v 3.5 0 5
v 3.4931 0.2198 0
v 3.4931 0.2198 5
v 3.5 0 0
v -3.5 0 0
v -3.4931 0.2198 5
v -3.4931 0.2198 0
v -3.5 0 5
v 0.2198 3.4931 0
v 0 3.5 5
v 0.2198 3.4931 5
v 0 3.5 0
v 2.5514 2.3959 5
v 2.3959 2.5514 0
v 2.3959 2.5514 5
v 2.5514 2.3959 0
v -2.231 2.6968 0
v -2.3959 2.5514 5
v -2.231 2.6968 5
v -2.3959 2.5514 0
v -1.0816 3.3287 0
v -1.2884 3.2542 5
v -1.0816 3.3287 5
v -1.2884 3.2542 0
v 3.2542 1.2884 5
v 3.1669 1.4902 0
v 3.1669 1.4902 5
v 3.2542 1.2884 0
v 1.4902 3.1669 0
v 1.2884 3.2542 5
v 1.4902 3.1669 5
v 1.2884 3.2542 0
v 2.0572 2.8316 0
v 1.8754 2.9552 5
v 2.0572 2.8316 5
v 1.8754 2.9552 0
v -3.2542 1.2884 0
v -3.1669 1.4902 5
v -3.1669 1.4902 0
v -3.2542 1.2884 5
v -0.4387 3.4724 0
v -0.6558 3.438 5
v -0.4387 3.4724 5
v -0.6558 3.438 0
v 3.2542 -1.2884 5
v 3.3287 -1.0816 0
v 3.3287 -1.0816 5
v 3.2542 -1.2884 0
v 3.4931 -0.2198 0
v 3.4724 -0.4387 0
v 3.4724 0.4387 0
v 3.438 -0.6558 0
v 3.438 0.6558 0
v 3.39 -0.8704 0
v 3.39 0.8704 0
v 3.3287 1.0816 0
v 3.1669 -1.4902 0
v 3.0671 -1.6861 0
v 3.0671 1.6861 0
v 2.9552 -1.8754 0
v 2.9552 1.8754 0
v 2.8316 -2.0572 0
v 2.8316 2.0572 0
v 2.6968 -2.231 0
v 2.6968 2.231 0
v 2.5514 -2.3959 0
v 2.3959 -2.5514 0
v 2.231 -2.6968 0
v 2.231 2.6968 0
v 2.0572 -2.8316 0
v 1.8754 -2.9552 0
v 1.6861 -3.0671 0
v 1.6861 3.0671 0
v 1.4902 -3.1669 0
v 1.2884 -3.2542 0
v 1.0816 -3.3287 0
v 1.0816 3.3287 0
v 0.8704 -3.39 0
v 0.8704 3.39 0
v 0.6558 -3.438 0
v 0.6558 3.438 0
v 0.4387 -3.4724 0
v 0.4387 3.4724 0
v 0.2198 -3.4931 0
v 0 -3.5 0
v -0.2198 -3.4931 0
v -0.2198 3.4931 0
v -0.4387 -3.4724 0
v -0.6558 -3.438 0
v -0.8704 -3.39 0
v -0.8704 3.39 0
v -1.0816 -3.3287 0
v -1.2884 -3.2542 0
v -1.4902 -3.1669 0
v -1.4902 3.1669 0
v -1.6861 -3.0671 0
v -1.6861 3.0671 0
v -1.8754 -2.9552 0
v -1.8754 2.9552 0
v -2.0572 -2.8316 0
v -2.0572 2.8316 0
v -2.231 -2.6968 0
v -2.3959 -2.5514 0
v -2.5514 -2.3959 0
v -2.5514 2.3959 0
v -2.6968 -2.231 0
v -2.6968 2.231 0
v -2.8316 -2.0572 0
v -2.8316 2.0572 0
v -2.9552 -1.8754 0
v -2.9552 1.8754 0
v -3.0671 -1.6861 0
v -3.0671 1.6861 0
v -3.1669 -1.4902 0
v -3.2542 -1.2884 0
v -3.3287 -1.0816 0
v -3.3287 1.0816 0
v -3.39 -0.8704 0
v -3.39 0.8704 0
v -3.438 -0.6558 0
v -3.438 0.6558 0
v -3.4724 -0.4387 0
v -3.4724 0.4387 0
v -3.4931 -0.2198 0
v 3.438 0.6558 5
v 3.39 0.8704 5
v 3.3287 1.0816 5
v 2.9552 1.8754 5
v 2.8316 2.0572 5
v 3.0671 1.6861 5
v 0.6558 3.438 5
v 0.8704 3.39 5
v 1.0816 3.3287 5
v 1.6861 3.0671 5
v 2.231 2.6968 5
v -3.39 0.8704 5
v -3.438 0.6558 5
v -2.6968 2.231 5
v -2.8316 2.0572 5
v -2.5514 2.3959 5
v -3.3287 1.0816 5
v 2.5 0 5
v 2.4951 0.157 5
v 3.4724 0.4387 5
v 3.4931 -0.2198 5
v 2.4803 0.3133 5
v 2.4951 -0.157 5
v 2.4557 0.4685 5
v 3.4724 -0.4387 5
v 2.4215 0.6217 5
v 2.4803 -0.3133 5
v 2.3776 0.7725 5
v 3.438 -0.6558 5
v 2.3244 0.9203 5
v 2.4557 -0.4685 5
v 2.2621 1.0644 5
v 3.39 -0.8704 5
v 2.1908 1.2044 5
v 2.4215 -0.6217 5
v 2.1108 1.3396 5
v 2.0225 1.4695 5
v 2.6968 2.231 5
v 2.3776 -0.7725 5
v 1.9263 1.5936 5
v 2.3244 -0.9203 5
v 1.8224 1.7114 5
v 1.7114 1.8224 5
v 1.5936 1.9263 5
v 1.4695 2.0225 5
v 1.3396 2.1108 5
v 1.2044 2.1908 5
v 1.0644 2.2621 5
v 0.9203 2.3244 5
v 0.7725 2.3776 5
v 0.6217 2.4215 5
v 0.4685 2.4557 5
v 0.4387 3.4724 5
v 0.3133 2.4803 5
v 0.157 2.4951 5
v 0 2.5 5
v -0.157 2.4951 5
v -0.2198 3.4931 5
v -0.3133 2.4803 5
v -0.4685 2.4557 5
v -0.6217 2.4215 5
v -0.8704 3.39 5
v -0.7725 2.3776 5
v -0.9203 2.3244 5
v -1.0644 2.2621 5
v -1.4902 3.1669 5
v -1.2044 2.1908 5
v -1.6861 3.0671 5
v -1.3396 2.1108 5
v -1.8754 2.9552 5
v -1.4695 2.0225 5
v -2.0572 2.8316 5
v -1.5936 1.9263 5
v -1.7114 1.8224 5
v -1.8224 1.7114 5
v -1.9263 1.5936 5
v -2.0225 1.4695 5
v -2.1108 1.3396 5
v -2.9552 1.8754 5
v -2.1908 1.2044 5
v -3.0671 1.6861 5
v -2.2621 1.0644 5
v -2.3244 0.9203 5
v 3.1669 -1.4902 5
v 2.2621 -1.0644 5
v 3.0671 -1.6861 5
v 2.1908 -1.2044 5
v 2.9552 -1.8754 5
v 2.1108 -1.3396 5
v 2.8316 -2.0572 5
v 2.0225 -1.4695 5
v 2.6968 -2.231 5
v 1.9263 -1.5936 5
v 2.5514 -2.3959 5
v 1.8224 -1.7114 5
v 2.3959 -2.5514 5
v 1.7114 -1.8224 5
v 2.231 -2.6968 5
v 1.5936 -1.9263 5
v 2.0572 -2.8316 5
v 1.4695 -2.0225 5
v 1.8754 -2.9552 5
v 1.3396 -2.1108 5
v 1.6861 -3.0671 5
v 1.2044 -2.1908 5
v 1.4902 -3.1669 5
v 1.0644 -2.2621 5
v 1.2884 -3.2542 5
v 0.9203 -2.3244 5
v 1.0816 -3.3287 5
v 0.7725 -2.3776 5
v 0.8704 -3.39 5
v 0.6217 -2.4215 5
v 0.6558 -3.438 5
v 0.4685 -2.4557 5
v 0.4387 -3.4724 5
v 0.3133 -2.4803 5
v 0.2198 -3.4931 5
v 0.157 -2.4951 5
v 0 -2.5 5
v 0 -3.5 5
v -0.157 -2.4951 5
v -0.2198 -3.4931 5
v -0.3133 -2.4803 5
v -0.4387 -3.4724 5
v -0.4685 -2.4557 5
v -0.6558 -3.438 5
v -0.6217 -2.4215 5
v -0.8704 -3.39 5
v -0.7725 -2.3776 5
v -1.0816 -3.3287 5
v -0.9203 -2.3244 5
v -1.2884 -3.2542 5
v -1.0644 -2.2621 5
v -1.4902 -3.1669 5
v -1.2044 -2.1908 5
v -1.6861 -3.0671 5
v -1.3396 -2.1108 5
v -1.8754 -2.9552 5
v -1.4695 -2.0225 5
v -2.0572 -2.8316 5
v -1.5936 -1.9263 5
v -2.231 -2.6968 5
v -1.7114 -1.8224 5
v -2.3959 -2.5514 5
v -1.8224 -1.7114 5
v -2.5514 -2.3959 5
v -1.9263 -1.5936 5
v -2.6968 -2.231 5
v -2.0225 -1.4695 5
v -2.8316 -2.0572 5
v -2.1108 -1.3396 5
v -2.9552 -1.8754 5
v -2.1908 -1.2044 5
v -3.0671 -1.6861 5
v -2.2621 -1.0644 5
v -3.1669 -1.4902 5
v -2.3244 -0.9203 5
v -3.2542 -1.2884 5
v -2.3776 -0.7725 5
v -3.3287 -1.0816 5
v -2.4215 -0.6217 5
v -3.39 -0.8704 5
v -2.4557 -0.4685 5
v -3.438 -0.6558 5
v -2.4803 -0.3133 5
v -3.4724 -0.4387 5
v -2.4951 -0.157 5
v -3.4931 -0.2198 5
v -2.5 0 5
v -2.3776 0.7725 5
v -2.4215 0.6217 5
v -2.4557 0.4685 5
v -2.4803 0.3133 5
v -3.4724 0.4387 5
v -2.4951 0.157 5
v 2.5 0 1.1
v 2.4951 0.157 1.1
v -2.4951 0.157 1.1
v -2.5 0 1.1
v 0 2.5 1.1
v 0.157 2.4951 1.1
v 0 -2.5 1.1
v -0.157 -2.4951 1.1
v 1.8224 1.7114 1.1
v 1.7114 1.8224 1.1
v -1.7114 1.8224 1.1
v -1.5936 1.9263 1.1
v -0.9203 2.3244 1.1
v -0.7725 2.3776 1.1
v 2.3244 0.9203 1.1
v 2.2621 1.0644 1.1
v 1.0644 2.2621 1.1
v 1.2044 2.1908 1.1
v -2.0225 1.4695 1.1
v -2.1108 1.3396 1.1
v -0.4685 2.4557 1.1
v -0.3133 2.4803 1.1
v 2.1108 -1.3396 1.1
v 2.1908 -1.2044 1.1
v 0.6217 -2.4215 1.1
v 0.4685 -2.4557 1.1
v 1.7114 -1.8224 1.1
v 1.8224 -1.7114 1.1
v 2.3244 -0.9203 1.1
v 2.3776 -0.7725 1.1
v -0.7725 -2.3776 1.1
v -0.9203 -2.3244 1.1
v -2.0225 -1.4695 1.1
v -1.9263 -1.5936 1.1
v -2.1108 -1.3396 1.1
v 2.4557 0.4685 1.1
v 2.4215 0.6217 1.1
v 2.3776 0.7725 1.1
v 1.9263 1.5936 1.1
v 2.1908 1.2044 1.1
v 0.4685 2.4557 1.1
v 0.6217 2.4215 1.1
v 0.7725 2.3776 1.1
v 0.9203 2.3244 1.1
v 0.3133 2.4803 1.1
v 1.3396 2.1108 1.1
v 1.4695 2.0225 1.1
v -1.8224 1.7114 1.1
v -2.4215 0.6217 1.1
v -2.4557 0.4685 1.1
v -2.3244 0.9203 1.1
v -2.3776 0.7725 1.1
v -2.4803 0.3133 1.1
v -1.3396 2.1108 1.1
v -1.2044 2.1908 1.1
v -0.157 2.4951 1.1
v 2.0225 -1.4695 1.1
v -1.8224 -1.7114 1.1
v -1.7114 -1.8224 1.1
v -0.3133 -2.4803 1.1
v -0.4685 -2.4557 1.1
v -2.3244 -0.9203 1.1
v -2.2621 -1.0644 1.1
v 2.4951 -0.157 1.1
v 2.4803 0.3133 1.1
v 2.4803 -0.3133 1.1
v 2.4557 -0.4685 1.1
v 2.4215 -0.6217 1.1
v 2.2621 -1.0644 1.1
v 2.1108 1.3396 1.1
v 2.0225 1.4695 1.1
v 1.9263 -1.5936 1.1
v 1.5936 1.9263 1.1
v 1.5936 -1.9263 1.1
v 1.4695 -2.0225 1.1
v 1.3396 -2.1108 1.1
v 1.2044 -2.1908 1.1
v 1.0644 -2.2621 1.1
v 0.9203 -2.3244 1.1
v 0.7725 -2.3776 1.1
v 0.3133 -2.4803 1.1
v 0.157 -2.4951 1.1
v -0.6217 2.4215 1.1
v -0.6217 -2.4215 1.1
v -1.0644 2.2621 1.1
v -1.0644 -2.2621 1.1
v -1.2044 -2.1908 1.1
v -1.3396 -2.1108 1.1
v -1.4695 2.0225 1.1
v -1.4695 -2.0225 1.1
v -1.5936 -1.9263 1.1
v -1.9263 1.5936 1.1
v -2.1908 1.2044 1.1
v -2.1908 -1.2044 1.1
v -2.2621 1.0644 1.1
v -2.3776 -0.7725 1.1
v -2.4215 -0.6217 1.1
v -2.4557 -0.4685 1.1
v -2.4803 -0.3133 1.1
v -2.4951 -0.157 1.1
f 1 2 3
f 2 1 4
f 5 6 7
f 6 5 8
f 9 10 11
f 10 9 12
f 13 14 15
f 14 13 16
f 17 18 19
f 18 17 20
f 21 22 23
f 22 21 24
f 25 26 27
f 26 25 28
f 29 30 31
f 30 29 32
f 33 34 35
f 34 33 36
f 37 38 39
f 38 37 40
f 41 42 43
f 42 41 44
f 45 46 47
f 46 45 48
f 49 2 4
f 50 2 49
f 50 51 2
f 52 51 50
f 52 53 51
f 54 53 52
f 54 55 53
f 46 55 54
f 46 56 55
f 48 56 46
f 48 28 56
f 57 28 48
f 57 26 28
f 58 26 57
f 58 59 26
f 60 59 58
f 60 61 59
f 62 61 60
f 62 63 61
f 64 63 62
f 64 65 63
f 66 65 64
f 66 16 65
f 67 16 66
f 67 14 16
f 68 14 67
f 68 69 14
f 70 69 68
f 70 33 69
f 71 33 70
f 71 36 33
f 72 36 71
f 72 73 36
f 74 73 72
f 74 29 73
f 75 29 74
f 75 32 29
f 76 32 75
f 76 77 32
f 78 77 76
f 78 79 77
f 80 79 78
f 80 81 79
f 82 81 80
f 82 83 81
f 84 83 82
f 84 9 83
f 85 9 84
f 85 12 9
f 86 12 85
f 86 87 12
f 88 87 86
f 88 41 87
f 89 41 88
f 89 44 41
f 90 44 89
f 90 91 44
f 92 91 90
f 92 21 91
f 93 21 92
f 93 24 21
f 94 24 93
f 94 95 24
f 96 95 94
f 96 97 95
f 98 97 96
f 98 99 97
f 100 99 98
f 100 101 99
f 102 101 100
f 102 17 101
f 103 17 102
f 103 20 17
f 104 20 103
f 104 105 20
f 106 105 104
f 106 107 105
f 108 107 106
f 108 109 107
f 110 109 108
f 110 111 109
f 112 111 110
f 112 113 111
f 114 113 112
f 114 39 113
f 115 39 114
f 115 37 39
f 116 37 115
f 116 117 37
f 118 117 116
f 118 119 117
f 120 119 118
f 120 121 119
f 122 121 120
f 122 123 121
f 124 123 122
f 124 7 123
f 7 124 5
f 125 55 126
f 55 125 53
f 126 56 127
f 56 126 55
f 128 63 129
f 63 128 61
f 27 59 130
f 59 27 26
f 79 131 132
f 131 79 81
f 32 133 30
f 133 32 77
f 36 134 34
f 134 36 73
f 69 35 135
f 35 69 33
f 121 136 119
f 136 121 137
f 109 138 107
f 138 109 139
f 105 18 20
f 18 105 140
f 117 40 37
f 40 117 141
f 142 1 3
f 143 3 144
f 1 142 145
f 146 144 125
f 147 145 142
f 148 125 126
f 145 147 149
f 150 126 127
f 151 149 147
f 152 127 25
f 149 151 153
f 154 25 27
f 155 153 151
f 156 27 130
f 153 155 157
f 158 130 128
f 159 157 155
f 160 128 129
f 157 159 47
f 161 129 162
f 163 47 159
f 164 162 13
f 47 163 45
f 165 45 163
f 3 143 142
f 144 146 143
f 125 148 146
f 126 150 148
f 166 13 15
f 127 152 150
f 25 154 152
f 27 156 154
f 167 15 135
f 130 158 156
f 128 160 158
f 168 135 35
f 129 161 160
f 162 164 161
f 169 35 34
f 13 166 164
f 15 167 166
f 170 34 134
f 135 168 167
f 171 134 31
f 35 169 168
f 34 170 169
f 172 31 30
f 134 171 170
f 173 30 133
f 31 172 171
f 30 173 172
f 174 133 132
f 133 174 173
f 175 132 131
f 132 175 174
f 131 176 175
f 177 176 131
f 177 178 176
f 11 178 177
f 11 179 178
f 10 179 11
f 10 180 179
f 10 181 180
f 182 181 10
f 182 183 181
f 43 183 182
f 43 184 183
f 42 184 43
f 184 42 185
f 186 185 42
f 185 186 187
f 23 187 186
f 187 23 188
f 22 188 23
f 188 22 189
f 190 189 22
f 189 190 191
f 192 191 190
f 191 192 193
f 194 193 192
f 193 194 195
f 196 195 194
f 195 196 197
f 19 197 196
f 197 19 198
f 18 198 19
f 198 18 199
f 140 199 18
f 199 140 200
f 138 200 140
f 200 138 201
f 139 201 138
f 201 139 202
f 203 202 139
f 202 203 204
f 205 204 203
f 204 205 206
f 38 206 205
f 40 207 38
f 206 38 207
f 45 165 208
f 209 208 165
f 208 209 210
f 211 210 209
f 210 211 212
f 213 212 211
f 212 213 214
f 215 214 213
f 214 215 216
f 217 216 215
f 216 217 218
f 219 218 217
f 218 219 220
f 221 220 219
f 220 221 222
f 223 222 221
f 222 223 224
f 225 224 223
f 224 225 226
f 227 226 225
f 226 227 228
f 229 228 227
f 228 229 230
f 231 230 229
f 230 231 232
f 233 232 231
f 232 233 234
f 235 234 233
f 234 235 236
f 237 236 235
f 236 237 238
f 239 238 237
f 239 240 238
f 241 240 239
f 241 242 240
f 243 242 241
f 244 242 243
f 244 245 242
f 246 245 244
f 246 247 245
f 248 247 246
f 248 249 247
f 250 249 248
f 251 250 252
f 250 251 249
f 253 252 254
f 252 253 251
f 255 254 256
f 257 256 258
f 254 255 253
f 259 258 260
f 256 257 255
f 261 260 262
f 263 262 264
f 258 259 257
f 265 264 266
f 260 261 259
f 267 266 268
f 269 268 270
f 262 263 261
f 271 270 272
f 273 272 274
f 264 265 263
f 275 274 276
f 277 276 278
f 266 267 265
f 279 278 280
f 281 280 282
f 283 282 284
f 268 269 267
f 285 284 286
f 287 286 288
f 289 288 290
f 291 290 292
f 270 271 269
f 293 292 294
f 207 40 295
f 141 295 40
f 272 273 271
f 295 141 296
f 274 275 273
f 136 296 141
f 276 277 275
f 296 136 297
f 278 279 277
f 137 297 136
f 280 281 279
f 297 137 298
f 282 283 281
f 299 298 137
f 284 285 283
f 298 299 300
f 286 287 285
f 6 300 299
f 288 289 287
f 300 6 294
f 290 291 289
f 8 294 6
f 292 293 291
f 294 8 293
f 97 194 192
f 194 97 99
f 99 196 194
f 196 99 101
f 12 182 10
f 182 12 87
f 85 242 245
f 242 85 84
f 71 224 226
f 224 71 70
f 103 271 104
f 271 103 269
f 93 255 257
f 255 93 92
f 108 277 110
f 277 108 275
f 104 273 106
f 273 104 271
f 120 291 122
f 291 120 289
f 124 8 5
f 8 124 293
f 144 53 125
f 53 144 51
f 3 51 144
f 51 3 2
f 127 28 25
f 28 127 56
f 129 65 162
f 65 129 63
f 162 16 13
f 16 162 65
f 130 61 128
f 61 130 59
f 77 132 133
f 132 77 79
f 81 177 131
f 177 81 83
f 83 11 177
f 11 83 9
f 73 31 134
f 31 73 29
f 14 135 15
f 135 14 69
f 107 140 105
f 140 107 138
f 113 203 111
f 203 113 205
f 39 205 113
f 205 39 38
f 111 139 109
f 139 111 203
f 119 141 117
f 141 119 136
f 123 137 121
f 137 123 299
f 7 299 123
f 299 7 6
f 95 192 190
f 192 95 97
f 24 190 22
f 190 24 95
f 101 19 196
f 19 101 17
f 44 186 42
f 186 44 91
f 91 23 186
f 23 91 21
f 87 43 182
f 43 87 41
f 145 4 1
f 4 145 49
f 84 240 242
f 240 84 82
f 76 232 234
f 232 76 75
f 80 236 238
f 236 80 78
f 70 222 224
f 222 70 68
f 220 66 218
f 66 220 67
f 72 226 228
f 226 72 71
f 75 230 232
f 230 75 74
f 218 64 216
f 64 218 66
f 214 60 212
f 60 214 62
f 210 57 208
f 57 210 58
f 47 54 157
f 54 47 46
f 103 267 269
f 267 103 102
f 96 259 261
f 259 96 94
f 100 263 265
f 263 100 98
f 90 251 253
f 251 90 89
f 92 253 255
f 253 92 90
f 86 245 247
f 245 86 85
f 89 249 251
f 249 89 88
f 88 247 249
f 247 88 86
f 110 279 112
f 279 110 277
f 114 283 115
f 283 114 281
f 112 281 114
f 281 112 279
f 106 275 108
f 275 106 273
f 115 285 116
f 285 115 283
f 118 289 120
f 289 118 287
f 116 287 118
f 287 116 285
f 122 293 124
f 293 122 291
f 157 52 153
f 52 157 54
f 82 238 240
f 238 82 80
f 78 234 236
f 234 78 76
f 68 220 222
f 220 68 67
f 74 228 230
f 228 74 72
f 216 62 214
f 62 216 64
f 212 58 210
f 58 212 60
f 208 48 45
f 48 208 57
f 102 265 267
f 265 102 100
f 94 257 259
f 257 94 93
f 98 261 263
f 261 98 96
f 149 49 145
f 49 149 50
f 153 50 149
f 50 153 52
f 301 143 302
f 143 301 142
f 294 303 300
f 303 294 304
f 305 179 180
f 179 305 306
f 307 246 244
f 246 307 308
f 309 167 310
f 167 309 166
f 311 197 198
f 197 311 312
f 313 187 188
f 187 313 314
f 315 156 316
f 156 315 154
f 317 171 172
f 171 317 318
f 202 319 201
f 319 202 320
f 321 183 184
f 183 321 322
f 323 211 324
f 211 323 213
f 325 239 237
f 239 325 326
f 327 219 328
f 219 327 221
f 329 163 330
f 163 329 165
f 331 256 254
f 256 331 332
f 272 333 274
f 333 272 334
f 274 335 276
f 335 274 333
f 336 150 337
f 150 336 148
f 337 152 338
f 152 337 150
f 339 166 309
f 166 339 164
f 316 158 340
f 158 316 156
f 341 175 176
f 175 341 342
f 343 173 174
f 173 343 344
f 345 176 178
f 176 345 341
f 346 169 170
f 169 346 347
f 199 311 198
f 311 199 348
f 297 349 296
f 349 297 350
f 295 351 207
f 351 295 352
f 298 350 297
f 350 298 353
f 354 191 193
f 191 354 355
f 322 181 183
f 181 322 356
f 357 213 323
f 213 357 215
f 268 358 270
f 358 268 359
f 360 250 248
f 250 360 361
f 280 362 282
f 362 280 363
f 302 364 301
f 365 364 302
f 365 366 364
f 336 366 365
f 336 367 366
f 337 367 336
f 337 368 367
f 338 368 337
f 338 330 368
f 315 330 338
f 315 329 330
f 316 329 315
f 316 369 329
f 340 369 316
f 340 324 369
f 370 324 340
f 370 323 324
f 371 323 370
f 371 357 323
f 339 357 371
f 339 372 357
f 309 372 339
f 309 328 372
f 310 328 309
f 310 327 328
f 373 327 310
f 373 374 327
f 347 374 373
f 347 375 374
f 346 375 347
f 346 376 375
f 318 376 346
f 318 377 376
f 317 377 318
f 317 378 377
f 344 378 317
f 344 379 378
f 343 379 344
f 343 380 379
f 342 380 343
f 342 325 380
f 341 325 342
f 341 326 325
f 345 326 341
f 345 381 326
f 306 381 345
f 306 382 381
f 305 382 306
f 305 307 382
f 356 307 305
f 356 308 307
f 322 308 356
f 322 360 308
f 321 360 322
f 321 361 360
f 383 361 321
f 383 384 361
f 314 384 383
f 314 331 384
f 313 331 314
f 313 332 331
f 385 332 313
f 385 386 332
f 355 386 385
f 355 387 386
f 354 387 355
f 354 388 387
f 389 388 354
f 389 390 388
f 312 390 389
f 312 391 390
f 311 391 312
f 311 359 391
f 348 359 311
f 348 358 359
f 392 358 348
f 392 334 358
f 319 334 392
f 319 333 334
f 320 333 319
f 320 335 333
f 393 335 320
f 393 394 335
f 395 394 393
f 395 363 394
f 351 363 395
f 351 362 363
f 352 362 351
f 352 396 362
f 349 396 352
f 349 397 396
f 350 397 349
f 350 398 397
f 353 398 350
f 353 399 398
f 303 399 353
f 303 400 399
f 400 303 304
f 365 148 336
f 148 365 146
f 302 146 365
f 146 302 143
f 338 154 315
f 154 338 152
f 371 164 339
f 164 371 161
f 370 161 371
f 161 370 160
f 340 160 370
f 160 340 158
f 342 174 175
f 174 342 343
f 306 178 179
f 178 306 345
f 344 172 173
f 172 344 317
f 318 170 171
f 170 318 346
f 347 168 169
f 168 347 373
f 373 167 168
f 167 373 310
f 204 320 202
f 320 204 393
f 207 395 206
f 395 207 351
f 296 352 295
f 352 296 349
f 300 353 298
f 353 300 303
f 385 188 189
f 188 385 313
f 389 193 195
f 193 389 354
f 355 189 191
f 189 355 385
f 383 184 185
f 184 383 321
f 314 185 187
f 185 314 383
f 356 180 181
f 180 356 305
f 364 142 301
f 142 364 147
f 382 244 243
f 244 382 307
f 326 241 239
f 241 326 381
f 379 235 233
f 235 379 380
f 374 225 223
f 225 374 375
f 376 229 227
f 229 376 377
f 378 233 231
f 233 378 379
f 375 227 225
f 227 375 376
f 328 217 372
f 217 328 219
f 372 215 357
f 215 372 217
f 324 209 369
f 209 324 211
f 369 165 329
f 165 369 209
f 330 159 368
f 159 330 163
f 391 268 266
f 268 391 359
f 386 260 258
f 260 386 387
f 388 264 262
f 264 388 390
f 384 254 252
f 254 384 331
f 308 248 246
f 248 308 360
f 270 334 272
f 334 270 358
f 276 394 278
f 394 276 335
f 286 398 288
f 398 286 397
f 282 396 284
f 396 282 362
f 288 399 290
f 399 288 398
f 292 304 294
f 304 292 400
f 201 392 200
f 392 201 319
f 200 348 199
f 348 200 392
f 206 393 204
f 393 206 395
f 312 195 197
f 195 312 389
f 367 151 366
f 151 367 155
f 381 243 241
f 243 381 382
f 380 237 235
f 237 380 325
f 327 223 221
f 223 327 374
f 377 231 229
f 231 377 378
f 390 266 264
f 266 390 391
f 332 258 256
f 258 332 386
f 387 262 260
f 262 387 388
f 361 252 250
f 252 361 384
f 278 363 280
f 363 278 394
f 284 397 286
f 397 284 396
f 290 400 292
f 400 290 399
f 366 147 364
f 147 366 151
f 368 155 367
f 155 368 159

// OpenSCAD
$fn=100;

difference(){
cylinder(d=7, h=5);
translate([0,0,1.1]) cylinder(d=5, h=4);
}
